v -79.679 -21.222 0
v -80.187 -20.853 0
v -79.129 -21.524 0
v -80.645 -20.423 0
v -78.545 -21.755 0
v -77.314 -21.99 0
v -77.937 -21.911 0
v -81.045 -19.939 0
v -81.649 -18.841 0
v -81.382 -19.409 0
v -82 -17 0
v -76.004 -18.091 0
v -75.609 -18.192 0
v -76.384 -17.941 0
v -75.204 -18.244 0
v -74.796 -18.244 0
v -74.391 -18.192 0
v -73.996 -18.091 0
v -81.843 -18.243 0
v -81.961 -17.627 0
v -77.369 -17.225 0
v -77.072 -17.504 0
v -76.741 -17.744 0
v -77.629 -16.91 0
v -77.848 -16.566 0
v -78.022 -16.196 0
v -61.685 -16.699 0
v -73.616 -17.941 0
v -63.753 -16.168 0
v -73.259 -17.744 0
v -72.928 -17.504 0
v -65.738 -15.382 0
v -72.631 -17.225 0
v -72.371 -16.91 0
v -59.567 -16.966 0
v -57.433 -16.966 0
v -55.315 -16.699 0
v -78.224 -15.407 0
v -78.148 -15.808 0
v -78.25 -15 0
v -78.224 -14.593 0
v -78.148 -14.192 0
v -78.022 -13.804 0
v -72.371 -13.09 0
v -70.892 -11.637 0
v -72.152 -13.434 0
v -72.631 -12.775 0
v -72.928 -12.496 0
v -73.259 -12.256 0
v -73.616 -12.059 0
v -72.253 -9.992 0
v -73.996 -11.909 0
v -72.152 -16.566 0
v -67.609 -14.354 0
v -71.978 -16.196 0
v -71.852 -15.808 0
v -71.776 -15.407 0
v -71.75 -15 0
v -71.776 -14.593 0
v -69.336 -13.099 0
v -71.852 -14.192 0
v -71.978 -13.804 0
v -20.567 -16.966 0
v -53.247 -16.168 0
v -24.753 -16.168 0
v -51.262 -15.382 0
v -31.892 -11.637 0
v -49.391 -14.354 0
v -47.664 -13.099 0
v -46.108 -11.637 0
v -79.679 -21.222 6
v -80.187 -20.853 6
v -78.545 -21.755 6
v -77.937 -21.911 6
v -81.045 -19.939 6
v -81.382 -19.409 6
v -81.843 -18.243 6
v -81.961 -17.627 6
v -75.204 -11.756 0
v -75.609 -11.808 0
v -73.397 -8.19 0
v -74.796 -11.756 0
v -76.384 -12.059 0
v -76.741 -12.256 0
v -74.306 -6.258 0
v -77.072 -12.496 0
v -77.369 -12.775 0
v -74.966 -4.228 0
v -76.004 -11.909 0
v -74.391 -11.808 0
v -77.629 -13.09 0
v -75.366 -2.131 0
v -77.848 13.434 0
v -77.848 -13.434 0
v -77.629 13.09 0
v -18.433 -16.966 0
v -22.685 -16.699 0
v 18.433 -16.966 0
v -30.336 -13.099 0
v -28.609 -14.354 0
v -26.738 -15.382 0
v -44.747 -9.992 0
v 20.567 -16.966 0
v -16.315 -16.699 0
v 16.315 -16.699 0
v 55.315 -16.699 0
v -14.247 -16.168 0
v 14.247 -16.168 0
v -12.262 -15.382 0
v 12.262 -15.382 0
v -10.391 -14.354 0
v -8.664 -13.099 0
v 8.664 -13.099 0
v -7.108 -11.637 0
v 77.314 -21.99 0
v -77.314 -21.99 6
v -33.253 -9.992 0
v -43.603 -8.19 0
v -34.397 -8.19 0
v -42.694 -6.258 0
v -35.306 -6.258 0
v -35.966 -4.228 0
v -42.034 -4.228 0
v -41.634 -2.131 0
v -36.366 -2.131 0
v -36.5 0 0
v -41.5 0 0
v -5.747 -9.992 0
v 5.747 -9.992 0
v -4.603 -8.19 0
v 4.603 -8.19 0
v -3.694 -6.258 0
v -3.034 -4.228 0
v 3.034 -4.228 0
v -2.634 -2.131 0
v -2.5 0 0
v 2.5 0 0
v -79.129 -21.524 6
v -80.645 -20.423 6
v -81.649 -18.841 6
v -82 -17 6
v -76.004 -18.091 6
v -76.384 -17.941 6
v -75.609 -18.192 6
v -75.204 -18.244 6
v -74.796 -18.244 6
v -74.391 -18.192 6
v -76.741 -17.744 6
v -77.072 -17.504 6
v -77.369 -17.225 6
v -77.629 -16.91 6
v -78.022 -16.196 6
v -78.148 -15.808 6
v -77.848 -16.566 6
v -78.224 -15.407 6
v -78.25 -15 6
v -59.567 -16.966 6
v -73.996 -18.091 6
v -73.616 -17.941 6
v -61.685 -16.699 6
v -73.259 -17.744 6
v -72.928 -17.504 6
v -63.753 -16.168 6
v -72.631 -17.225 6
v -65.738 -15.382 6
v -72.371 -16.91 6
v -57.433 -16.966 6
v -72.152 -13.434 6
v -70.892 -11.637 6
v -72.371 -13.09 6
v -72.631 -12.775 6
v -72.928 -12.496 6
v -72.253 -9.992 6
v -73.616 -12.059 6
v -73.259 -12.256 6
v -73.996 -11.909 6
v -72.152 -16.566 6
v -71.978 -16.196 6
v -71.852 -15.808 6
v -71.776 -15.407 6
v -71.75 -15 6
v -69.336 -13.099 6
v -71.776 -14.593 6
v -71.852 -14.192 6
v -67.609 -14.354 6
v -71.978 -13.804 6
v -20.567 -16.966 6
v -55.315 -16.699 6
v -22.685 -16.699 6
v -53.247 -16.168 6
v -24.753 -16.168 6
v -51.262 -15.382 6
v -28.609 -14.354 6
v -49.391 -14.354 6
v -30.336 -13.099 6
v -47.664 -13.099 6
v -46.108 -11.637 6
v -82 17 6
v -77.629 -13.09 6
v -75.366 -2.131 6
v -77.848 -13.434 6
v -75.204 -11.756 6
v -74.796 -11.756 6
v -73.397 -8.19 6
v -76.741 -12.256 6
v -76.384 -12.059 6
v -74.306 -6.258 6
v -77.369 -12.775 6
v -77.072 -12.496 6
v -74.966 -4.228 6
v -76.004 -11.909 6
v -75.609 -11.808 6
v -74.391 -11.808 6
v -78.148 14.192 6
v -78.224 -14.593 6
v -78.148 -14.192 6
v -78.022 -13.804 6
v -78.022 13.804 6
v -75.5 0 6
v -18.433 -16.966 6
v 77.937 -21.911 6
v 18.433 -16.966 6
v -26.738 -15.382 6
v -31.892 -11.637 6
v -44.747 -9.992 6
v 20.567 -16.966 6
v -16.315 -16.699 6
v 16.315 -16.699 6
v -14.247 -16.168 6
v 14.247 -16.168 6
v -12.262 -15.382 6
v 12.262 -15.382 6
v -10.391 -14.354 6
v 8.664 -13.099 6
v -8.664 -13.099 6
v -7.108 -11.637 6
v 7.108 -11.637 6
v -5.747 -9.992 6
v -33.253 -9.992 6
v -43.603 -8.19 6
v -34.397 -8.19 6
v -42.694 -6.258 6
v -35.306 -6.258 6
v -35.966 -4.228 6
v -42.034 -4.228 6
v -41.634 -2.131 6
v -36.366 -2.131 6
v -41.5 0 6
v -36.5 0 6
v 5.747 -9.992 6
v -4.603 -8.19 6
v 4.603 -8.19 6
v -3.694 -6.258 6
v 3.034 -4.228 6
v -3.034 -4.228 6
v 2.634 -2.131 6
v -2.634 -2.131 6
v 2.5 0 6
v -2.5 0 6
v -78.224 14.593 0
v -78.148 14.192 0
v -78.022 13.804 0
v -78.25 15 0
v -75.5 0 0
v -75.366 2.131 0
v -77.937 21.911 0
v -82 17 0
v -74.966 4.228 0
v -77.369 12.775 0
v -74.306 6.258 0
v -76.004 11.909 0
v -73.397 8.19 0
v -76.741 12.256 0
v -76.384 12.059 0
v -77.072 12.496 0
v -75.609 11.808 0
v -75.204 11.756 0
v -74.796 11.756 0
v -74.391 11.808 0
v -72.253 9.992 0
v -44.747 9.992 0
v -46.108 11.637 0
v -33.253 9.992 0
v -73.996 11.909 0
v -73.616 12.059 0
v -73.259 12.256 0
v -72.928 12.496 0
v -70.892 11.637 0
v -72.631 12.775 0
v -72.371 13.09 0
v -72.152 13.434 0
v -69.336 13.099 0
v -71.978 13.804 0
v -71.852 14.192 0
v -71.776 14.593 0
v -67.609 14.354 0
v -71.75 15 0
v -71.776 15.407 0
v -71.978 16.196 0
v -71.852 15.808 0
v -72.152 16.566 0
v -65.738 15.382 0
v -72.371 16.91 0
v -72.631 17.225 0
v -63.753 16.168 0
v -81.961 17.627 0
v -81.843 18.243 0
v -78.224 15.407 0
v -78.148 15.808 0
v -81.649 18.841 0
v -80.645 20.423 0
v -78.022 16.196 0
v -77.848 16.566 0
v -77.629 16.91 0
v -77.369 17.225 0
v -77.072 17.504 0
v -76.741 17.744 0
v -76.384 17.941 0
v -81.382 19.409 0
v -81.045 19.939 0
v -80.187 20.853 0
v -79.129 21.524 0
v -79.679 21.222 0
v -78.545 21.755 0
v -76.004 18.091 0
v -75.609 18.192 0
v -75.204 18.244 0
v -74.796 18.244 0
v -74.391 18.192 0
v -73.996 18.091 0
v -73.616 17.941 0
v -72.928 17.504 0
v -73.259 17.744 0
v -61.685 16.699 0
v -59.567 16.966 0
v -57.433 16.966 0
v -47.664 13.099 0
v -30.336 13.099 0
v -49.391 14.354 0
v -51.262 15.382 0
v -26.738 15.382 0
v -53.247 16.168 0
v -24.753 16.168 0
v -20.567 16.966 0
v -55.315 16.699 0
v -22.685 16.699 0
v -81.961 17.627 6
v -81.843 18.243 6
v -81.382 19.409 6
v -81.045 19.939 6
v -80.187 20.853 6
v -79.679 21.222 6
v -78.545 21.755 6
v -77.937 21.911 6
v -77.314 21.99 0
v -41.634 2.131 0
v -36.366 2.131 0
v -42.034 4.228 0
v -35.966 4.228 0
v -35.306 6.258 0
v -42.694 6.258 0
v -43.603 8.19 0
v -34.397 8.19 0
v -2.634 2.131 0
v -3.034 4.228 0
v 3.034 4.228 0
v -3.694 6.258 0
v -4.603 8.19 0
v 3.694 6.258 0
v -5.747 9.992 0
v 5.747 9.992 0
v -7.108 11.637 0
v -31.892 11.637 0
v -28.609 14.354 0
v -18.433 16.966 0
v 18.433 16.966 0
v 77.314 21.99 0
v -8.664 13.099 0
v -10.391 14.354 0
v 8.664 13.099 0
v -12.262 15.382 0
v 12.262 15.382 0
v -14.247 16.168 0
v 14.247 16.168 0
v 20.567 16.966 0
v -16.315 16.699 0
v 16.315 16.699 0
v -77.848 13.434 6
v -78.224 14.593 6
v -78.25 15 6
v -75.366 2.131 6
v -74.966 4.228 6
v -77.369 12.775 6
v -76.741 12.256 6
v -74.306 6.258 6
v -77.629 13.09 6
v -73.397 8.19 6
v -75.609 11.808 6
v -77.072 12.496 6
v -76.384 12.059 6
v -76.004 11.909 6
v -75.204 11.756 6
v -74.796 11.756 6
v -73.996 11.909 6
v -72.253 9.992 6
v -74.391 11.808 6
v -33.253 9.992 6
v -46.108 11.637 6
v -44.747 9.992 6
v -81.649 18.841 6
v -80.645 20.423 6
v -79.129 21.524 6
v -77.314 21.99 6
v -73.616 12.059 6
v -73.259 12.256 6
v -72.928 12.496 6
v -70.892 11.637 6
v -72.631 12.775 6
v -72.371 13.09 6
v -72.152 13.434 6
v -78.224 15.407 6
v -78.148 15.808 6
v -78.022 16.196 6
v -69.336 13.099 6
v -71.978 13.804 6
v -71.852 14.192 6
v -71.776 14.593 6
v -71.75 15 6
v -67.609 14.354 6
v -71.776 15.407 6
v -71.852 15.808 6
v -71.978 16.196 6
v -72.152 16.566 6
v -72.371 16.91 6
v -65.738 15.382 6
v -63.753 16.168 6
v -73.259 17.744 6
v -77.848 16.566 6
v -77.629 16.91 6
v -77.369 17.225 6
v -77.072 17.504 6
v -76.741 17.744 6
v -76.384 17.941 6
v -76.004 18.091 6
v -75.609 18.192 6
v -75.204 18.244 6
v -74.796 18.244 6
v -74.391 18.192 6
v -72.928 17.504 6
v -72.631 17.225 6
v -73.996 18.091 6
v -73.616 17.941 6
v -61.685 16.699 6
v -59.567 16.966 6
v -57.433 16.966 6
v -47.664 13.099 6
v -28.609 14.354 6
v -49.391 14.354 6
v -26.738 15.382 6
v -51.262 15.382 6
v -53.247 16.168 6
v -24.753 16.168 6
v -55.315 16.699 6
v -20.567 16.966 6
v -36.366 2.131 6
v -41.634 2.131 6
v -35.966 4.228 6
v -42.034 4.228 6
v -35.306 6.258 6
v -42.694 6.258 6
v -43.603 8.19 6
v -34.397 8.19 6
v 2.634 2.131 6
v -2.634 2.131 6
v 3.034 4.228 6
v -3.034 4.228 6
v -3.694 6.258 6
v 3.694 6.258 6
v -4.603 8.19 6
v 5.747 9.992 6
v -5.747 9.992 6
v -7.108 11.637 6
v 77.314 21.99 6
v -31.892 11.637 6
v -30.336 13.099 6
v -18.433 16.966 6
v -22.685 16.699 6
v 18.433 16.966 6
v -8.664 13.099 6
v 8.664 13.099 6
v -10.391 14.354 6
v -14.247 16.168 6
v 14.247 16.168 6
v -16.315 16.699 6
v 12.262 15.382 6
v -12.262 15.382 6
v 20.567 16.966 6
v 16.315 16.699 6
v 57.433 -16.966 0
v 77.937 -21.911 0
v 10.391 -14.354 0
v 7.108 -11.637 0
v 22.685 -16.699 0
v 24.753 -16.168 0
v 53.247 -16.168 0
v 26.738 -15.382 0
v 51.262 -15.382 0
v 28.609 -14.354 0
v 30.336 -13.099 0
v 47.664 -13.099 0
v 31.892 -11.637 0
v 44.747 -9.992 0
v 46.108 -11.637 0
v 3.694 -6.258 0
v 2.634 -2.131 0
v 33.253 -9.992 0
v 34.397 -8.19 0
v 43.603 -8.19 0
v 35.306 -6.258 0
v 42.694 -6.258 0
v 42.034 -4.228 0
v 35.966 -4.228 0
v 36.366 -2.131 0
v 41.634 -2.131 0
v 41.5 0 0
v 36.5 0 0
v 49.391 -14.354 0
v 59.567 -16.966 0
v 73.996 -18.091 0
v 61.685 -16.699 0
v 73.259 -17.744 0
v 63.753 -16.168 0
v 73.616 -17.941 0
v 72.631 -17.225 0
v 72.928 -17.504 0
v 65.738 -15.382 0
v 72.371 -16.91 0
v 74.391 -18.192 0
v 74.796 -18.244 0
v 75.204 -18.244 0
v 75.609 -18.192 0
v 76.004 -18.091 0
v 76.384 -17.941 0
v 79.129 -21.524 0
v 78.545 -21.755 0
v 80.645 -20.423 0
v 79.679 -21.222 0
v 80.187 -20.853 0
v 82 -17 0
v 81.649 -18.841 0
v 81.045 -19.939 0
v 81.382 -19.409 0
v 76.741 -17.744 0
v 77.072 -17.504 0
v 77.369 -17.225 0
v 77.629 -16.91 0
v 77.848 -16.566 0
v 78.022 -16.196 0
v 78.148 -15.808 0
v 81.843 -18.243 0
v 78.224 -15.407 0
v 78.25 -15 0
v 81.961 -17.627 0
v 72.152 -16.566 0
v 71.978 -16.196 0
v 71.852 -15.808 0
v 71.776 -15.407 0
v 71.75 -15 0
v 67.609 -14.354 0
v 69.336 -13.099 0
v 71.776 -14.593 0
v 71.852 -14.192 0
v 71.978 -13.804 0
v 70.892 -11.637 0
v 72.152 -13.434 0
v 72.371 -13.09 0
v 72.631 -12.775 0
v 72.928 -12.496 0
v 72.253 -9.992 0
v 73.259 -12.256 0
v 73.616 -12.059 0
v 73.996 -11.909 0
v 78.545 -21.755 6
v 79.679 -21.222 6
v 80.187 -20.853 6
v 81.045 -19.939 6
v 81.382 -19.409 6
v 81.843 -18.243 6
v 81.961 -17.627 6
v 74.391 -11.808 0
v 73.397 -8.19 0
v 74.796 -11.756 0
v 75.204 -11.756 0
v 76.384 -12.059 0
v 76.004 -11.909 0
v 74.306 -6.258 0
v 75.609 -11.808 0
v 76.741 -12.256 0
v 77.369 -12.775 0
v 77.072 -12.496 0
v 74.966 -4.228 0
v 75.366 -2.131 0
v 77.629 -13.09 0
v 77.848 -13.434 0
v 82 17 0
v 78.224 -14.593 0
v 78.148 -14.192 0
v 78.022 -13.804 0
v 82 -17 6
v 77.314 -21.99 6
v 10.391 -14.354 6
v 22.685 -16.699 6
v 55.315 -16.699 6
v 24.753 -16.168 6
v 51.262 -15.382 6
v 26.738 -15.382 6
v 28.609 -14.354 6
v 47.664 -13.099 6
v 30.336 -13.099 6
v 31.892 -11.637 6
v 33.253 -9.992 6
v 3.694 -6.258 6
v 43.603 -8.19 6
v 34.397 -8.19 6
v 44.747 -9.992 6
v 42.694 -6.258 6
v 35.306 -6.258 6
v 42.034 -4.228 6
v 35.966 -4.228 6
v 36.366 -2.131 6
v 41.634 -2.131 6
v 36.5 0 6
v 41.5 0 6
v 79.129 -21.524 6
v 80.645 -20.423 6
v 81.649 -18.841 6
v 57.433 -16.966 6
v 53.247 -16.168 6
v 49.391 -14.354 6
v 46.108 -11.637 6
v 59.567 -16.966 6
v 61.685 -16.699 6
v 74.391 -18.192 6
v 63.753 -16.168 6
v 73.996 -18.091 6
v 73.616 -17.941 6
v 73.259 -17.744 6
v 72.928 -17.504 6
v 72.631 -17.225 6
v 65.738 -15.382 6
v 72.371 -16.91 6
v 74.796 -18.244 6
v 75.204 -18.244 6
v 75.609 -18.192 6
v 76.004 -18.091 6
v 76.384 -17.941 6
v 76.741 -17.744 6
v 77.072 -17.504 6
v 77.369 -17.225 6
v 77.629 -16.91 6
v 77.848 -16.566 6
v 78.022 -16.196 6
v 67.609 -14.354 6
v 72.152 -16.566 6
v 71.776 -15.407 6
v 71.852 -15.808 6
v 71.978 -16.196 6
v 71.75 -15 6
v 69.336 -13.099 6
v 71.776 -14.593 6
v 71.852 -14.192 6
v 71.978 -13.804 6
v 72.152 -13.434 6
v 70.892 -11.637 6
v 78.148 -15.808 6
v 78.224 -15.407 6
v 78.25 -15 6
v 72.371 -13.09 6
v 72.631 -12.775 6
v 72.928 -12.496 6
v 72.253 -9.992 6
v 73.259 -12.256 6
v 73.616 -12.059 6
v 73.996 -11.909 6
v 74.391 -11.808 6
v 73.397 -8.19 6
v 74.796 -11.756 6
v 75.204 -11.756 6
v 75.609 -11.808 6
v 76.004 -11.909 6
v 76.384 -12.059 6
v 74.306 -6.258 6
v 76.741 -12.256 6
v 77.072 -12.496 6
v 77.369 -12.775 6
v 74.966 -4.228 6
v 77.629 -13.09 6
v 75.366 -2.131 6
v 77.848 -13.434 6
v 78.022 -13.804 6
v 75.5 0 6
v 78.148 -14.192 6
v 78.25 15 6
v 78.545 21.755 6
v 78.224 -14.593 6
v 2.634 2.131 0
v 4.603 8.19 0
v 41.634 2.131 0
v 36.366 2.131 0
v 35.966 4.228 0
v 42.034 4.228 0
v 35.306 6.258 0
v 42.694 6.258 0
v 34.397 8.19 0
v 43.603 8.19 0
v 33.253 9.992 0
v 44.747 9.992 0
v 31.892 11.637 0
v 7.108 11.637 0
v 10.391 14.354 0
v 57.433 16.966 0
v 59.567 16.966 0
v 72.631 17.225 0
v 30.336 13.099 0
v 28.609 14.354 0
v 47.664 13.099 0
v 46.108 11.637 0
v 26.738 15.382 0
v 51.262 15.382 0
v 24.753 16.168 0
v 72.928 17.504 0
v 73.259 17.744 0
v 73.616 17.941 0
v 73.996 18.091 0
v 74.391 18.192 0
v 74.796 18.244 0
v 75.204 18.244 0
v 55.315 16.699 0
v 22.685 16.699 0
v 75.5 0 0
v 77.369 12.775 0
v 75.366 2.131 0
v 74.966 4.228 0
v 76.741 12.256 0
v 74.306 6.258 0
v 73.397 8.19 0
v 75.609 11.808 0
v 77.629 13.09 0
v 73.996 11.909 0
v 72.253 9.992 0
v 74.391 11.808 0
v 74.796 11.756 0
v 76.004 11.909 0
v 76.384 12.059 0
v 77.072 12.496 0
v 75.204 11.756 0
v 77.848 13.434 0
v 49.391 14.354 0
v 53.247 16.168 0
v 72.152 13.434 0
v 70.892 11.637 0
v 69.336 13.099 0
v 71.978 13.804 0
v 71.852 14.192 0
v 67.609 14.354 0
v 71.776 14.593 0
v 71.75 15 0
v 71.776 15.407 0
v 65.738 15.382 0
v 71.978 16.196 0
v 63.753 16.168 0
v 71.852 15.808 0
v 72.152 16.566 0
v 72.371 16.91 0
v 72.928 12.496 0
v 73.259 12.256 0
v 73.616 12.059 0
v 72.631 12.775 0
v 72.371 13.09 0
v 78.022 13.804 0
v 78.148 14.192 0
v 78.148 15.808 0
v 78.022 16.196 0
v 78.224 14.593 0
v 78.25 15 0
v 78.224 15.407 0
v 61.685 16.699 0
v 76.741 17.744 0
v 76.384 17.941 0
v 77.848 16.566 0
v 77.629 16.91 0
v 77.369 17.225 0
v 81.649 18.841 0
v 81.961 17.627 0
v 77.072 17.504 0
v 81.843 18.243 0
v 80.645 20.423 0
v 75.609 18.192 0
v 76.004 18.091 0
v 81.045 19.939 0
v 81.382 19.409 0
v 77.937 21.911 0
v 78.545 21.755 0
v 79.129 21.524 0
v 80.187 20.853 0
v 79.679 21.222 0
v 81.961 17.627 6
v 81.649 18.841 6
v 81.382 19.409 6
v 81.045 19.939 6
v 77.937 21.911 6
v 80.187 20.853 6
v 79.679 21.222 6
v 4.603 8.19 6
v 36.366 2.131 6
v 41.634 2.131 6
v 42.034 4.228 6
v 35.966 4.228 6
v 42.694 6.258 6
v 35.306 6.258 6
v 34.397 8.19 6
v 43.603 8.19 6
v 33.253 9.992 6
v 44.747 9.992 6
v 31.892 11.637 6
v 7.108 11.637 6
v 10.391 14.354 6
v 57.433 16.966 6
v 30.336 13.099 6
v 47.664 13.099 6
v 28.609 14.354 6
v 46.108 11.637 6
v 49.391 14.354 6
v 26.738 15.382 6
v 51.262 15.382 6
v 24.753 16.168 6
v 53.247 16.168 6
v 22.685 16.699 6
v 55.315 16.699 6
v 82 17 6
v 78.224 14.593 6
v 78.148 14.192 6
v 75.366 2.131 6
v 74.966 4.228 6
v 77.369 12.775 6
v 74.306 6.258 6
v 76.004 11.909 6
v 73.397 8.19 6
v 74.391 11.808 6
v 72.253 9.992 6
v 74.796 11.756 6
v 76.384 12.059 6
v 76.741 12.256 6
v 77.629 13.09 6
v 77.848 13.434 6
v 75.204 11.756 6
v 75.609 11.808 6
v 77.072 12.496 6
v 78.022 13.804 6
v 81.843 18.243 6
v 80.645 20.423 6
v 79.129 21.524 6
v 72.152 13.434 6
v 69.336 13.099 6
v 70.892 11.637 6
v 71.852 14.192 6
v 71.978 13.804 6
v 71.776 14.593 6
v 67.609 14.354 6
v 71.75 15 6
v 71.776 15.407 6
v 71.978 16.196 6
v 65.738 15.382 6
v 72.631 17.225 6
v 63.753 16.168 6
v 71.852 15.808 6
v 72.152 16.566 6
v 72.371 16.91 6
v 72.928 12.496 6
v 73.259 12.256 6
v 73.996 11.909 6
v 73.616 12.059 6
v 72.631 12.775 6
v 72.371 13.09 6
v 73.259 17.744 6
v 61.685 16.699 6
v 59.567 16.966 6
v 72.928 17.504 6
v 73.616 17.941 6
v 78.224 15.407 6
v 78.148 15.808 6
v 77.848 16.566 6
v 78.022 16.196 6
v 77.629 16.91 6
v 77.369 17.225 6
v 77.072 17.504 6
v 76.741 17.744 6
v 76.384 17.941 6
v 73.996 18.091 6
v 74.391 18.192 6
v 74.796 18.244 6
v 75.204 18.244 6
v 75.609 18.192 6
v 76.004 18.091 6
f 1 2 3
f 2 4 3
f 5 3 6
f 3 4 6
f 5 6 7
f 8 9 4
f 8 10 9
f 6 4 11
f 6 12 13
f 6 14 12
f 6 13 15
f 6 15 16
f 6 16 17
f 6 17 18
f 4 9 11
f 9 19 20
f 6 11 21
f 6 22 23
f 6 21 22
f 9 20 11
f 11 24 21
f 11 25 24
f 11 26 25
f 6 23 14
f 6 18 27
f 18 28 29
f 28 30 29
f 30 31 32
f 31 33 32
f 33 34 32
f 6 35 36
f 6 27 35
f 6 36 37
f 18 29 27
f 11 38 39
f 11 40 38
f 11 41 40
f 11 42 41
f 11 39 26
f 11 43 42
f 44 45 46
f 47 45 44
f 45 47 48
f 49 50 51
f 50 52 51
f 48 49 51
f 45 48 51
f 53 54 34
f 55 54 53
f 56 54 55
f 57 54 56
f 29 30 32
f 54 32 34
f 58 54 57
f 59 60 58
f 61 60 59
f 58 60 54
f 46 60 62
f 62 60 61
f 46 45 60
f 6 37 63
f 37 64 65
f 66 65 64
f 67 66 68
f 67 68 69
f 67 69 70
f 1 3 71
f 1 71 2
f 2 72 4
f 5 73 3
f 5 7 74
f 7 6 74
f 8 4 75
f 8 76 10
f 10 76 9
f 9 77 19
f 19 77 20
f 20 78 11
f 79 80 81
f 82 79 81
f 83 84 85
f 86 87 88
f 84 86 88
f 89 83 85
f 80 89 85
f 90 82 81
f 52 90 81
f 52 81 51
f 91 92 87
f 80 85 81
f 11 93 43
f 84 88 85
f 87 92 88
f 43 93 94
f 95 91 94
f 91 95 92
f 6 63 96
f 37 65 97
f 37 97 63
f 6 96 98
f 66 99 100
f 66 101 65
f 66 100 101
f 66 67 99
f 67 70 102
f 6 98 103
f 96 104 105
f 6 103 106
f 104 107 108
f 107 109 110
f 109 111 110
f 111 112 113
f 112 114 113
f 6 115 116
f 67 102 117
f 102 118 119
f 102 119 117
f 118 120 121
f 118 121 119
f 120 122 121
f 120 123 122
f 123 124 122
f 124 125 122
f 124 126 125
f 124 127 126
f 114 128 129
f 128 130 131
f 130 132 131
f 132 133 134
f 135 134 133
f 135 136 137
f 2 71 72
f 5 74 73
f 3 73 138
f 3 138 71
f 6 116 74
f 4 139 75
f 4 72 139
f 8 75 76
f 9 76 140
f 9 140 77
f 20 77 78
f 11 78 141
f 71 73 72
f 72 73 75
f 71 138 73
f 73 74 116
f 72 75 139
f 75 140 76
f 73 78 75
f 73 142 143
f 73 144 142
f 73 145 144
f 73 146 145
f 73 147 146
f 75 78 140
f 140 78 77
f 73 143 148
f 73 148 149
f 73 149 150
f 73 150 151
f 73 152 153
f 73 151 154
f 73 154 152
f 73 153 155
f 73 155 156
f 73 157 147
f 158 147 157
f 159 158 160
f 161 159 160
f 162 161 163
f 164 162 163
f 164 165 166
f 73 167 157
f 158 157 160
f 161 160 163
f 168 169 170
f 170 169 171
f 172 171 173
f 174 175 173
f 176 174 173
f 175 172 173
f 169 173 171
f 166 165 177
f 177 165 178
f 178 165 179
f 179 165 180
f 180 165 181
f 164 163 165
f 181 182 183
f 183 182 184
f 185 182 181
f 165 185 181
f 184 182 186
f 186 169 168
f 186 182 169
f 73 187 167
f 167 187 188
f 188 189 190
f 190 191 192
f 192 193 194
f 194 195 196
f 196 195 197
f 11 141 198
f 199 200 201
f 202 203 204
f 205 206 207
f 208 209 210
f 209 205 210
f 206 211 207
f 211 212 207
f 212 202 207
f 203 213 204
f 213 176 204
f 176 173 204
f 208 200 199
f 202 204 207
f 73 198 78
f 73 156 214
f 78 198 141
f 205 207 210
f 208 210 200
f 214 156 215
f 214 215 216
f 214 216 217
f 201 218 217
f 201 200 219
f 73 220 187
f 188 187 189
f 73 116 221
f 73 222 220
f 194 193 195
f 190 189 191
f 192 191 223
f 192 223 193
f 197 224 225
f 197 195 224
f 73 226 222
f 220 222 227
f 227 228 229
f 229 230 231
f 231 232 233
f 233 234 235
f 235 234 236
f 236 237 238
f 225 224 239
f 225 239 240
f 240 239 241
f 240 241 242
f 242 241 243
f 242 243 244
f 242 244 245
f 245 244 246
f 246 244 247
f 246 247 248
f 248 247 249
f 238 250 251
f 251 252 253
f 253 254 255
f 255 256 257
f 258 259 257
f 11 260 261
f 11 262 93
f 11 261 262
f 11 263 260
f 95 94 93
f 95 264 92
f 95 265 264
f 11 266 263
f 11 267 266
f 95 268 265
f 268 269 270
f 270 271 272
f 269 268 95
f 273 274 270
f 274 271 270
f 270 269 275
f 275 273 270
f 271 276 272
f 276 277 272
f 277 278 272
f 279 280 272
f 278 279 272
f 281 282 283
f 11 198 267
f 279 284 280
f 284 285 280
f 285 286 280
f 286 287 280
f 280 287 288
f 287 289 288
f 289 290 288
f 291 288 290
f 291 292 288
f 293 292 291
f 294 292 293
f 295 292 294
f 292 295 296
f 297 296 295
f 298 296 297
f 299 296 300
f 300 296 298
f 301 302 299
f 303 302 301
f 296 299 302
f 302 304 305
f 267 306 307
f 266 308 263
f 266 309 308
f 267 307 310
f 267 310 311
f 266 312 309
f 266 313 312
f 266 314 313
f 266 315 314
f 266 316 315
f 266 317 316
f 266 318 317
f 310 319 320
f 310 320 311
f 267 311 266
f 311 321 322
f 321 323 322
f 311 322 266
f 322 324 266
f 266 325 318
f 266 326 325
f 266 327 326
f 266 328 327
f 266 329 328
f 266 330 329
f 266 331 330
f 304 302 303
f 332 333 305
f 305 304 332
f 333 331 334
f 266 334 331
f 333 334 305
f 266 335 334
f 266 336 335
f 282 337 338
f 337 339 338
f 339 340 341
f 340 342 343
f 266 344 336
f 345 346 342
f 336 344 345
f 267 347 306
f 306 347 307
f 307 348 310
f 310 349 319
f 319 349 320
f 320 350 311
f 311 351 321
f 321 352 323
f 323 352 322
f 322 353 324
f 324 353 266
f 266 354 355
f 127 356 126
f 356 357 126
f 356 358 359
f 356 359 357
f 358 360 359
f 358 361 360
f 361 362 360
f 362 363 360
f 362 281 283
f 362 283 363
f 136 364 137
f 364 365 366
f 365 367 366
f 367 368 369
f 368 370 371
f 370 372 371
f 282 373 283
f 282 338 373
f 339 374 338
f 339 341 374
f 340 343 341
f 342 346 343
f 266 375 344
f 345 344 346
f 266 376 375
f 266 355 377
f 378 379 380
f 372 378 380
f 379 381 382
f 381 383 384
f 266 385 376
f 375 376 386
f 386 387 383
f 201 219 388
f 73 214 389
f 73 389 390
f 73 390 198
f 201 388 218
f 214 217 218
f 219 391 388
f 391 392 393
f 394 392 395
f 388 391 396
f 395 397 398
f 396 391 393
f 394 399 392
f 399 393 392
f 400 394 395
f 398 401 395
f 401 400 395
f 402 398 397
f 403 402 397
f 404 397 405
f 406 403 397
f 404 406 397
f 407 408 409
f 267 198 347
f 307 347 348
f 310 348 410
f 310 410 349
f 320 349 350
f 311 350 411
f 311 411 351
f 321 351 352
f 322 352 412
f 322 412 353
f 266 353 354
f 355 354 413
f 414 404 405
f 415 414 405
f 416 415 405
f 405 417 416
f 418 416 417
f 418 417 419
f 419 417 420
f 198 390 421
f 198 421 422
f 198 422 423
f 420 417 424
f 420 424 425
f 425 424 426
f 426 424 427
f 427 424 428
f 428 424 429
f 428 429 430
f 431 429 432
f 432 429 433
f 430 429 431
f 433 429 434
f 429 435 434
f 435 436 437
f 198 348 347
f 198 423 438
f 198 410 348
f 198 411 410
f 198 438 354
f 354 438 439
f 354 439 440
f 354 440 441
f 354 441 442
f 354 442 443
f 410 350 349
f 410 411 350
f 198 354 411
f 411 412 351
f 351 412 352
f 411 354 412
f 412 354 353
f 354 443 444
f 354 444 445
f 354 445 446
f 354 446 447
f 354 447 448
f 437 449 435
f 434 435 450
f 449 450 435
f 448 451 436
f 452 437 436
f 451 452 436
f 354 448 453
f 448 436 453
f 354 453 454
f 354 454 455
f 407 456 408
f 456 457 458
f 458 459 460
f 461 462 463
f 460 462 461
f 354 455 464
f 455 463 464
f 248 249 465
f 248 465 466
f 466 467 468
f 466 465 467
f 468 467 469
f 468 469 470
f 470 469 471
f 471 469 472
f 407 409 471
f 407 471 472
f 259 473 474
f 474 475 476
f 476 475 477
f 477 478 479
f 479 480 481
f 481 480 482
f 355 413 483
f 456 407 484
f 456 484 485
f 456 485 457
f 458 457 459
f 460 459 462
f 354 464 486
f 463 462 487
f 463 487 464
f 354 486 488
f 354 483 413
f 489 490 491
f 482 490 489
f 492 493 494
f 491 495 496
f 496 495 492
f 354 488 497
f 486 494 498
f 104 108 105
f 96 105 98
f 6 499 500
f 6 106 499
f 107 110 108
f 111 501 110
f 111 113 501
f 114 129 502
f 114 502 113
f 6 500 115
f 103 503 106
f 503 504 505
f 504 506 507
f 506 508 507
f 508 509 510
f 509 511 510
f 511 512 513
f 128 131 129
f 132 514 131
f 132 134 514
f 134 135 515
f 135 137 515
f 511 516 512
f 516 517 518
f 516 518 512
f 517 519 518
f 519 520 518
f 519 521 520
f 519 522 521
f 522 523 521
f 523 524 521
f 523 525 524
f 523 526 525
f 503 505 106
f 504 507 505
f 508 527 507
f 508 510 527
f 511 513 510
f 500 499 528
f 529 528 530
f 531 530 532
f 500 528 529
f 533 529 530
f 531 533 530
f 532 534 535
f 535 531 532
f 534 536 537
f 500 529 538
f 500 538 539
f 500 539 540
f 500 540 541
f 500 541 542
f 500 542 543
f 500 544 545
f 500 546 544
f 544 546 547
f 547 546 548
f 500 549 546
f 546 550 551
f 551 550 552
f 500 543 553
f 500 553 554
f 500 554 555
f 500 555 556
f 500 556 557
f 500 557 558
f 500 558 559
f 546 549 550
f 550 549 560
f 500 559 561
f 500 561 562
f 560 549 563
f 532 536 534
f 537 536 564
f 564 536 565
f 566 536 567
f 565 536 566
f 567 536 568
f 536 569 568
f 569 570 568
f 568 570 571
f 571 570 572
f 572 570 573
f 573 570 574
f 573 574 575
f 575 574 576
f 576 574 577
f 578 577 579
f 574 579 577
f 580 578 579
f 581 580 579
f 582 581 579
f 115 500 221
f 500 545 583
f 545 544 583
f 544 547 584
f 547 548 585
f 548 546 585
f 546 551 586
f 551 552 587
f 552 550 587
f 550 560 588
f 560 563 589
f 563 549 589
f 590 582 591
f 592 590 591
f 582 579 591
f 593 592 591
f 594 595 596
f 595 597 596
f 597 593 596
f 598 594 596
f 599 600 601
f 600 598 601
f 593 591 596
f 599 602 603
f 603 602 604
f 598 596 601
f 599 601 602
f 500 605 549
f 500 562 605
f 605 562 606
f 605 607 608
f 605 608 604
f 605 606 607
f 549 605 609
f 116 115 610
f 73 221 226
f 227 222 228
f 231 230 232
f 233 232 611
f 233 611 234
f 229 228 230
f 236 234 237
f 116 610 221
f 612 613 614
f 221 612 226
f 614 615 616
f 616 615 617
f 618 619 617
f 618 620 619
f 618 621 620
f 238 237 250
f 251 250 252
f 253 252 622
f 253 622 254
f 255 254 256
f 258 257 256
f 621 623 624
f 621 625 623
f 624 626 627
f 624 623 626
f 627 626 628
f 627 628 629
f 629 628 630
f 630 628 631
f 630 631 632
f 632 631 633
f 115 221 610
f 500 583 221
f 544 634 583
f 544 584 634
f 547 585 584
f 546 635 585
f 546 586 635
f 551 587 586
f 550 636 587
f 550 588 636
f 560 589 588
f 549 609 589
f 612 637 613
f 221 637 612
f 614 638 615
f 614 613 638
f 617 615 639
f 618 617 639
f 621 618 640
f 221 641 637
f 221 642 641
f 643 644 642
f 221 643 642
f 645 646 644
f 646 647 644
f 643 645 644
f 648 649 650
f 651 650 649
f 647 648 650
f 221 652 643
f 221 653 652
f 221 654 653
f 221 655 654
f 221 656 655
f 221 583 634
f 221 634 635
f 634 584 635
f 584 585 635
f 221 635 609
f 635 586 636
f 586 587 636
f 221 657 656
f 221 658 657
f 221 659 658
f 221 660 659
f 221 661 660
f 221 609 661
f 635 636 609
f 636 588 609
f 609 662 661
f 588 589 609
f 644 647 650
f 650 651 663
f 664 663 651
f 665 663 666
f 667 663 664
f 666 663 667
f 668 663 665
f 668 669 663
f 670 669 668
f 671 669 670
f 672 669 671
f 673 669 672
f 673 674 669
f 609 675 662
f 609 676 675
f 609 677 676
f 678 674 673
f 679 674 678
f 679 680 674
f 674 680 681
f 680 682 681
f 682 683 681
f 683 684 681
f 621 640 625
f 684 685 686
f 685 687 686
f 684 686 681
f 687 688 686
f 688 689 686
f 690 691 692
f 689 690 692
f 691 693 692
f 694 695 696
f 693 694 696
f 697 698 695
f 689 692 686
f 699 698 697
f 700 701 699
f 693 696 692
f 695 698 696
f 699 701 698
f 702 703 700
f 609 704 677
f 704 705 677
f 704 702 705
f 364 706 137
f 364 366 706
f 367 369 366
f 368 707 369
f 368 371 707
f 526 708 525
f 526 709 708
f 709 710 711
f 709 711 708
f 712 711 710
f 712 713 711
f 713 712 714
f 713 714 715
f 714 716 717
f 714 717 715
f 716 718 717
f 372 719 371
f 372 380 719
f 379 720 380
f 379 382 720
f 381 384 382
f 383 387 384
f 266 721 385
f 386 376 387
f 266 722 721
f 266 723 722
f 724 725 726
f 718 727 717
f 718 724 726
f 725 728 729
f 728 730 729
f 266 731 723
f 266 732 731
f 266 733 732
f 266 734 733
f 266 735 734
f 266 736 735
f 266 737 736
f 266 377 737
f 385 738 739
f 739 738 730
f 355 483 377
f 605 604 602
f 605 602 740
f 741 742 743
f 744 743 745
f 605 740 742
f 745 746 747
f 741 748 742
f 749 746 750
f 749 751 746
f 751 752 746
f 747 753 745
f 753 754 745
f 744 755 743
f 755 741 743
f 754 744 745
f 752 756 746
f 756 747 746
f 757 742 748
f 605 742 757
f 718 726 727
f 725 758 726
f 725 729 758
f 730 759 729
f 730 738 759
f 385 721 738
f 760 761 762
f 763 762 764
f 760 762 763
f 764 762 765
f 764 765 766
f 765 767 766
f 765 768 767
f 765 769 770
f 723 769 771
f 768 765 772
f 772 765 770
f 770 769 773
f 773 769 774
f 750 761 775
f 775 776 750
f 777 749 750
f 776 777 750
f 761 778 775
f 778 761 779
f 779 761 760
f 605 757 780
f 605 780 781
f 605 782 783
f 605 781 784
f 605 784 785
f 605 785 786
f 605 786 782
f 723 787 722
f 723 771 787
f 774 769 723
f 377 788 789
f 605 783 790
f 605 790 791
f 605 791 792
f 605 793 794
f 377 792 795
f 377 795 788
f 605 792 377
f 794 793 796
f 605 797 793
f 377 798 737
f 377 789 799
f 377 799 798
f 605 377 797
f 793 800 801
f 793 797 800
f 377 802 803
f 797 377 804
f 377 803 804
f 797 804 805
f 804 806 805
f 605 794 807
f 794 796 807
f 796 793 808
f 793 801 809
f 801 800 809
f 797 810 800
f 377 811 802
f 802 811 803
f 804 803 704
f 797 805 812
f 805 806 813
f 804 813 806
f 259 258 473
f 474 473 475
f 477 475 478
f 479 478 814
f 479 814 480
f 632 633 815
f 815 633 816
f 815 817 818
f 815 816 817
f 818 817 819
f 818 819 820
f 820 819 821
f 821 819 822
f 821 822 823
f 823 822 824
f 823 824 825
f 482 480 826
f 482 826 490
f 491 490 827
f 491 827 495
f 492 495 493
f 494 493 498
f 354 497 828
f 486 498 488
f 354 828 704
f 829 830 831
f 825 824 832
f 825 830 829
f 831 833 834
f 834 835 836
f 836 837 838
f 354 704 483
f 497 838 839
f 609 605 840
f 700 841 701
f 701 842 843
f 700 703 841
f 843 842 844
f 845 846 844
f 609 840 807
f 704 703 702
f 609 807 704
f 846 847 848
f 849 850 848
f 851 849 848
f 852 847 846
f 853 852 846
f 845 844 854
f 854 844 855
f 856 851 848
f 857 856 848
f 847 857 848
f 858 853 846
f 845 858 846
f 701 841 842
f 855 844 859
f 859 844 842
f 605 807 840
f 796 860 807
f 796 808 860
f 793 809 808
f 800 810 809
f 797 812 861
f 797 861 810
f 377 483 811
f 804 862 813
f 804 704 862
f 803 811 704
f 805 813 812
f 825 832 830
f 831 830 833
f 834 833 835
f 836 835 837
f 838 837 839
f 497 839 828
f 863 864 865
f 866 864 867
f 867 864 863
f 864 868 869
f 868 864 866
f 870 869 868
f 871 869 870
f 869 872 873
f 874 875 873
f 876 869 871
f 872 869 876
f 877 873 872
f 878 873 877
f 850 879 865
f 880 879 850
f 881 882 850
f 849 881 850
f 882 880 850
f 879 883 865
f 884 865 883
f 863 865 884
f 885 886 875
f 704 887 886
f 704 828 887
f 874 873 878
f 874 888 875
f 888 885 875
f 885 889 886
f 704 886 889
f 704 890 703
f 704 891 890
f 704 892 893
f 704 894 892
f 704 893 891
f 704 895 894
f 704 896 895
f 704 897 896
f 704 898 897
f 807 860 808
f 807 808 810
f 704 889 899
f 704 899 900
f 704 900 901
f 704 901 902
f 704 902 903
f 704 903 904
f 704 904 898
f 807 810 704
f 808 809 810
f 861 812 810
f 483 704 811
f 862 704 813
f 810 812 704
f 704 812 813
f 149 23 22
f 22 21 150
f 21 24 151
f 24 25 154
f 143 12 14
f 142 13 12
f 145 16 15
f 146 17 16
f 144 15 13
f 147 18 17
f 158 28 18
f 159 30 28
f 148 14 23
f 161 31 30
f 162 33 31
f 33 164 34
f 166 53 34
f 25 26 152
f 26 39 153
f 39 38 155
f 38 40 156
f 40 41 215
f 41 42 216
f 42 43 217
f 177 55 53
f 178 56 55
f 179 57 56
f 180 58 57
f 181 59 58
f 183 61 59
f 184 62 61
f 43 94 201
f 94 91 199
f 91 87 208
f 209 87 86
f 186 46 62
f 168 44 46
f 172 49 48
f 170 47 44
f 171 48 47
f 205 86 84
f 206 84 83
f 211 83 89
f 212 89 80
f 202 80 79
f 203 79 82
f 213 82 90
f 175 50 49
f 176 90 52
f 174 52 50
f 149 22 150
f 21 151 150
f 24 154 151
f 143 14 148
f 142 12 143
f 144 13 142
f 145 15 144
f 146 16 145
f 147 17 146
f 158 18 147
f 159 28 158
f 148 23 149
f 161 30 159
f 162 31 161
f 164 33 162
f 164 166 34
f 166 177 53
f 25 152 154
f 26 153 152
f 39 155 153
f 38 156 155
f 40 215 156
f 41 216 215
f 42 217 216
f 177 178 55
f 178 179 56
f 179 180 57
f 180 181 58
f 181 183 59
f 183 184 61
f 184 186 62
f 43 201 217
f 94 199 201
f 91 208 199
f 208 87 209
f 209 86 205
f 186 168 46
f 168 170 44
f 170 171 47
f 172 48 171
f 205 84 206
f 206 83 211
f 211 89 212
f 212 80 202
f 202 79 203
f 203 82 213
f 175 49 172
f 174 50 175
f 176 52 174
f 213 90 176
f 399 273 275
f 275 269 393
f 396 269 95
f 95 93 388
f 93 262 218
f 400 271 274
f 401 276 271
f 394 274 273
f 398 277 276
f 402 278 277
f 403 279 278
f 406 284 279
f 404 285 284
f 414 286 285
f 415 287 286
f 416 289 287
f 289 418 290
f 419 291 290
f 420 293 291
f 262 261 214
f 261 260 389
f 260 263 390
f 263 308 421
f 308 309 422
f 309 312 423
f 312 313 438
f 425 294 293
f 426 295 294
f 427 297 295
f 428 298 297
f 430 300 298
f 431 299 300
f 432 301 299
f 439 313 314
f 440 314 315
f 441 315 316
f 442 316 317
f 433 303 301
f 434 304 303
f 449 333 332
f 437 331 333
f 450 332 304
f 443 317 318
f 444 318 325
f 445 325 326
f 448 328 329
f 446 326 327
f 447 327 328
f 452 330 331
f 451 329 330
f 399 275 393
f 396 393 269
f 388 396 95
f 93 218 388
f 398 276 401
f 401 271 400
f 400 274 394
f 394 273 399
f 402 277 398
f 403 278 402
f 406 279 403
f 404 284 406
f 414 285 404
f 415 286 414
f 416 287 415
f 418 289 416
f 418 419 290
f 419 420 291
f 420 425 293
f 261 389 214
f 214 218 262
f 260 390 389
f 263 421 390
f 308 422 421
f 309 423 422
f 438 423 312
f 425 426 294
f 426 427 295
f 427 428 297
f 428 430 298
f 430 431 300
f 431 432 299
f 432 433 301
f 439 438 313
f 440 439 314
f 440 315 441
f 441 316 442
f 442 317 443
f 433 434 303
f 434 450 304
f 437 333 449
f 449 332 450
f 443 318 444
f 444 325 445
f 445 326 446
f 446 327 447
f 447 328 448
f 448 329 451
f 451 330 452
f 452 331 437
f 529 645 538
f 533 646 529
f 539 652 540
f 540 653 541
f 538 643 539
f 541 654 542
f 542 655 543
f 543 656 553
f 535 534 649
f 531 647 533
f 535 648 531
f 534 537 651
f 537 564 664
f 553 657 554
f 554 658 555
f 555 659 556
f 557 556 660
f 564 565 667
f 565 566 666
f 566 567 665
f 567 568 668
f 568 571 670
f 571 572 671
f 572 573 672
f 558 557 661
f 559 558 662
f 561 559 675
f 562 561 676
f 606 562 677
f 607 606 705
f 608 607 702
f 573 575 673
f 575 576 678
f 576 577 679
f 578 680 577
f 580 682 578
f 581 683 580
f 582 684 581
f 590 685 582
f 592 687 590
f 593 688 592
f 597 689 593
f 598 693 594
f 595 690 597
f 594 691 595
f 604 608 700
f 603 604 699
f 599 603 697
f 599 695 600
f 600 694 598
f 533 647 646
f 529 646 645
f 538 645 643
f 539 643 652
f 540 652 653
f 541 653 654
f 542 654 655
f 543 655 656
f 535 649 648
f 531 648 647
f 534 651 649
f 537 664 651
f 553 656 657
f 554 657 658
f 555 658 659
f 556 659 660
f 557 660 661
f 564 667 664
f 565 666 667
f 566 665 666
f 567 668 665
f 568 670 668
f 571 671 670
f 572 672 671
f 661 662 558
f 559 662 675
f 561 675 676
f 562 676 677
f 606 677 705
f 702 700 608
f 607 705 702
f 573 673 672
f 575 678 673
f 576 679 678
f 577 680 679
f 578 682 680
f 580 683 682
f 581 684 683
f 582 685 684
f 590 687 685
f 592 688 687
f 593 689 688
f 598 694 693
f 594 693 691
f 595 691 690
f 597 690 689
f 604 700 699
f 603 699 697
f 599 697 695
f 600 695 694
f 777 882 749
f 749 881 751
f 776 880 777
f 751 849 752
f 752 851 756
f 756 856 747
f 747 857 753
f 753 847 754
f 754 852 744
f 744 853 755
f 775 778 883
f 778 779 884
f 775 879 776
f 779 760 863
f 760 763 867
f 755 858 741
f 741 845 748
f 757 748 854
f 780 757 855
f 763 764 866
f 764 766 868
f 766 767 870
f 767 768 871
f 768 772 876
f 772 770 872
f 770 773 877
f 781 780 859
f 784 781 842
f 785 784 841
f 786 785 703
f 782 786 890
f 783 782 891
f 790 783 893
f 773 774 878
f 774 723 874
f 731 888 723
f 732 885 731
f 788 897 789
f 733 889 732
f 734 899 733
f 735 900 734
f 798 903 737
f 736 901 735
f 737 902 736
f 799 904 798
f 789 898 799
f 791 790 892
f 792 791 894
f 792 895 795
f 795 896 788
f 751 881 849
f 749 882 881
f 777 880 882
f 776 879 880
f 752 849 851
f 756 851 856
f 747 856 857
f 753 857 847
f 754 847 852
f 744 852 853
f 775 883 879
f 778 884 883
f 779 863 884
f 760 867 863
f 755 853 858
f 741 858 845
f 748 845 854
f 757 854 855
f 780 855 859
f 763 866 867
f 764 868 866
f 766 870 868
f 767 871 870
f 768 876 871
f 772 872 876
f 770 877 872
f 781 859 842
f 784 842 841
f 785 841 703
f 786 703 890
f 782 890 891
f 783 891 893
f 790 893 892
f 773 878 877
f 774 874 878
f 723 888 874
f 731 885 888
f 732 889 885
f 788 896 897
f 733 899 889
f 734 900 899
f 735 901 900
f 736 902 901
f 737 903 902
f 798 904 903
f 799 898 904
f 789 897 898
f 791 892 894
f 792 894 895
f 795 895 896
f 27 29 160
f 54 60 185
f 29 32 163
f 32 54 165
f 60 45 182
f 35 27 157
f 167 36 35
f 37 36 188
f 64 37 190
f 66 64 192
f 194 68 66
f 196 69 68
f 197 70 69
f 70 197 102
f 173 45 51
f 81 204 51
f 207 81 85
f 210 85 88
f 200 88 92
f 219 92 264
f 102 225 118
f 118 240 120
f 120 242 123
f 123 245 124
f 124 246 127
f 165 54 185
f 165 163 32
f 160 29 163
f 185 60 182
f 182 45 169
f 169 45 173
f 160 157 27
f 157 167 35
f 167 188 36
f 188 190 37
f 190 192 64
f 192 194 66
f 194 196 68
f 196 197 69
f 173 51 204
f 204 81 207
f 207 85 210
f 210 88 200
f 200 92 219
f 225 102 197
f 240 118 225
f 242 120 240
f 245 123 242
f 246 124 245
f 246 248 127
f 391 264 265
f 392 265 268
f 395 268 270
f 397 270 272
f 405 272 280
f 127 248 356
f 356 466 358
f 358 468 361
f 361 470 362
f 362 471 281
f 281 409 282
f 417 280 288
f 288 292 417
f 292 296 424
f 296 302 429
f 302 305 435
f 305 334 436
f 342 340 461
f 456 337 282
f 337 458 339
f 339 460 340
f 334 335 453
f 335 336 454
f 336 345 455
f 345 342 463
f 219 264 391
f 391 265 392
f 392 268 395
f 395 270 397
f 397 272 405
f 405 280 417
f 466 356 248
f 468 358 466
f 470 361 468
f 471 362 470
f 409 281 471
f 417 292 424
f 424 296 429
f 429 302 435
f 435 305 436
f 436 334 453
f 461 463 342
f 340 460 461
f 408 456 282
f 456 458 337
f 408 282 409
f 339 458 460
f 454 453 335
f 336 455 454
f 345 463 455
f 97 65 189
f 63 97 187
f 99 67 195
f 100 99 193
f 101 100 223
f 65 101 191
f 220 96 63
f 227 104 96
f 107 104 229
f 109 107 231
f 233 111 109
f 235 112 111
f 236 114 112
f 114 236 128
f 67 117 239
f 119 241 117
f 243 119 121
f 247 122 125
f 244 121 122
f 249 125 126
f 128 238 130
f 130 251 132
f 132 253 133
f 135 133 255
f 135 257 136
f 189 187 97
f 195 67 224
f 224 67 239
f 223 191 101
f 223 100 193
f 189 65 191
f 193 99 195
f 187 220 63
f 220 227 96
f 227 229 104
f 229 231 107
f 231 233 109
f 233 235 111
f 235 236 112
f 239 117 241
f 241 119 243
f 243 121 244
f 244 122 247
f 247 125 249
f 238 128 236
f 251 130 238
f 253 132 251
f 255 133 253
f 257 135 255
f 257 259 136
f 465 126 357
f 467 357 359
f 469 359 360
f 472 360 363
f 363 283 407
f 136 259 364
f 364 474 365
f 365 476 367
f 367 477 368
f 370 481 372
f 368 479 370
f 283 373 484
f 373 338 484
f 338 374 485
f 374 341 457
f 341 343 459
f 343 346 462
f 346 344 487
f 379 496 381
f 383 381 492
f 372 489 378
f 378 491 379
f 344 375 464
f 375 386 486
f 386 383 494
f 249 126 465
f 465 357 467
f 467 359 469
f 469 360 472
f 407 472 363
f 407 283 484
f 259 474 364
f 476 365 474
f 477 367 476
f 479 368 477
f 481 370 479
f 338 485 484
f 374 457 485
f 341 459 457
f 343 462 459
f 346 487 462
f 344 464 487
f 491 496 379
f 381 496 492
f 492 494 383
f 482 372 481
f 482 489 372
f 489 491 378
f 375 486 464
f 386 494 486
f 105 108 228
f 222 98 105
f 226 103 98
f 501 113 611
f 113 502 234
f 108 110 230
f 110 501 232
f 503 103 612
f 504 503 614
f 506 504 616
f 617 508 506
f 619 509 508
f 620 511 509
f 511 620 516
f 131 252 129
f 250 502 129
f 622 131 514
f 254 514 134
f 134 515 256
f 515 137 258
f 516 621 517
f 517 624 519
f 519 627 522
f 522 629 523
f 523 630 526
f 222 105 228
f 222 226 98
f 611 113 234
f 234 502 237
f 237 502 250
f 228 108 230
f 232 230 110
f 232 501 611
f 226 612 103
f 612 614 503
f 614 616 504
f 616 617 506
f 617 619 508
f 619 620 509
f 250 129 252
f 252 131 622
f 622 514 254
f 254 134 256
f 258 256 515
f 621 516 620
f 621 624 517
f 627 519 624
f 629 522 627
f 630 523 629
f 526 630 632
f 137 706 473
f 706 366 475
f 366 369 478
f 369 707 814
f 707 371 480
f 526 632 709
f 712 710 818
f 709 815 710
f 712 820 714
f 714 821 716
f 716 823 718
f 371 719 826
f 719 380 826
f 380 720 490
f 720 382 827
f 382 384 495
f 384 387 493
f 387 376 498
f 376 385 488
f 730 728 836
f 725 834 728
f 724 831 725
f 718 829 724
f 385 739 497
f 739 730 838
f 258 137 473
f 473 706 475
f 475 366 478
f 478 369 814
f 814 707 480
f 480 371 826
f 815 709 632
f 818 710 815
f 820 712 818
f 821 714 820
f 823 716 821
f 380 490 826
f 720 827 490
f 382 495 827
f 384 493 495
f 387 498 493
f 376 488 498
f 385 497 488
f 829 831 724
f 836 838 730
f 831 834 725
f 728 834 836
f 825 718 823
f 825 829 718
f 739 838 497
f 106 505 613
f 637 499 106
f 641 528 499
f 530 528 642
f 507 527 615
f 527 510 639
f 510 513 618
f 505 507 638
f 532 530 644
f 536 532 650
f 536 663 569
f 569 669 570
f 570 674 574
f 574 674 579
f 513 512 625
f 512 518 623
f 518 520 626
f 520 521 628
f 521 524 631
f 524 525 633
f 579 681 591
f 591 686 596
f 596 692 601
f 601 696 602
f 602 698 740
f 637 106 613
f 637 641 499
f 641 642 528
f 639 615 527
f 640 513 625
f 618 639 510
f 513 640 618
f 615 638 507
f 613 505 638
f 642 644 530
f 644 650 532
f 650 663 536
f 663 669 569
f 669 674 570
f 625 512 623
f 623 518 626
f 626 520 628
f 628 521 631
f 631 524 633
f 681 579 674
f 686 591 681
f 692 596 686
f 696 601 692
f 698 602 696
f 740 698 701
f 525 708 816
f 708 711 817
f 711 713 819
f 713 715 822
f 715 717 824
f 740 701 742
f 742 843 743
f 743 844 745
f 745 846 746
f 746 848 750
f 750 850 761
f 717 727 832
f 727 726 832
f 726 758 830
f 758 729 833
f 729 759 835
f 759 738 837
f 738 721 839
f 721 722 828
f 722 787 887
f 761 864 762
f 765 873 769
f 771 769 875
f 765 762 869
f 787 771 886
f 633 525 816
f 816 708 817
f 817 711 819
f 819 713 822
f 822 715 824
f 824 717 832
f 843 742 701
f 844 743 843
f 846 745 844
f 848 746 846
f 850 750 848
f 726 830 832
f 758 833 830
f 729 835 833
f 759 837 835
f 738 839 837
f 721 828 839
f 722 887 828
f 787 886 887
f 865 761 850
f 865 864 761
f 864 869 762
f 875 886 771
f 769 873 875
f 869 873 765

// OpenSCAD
$fn = 50;

difference() {
	union() {
		hull() {
			translate(v = [-77.0, 17.0, 0]) {
				cylinder(h = 6, r = 5);
			}
			translate(v = [77.0, 17.0, 0]) {
				cylinder(h = 6, r = 5);
			}
			translate(v = [-77.0, -17.0, 0]) {
				cylinder(h = 6, r = 5);
			}
			translate(v = [77.0, -17.0, 0]) {
				cylinder(h = 6, r = 5);
			}
		}
	}
	union() {
		translate(v = [-75.0, -15.0, -100.0]) {
			cylinder(h = 200, r = 3.25);
		}
		translate(v = [-75.0, 15.0, -100.0]) {
			cylinder(h = 200, r = 3.25);
		}
		translate(v = [75.0, -15.0, -100.0]) {
			cylinder(h = 200, r = 3.25);
		}
		translate(v = [75.0, 15.0, -100.0]) {
			cylinder(h = 200, r = 3.25);
		}
		translate(v = [-75.0, -15.0, -100.0]) {
			cylinder(h = 200, r = 1.8);
		}
		translate(v = [-75.0, 15.0, -100.0]) {
			cylinder(h = 200, r = 1.8);
		}
		translate(v = [75.0, -15.0, -100.0]) {
			cylinder(h = 200, r = 1.8);
		}
		translate(v = [75.0, 15.0, -100.0]) {
			cylinder(h = 200, r = 1.8);
		}
		translate(v = [-58.5, 0, 0.0]) {
			cylinder(h = 6, r = 17.0);
		}
		translate(v = [-19.5, 0, 0.0]) {
			cylinder(h = 6, r = 17.0);
		}
		translate(v = [19.5, 0, 0.0]) {
			cylinder(h = 6, r = 17.0);
		}
		translate(v = [58.5, 0, 0.0]) {
			cylinder(h = 6, r = 17.0);
		}
	}
}
